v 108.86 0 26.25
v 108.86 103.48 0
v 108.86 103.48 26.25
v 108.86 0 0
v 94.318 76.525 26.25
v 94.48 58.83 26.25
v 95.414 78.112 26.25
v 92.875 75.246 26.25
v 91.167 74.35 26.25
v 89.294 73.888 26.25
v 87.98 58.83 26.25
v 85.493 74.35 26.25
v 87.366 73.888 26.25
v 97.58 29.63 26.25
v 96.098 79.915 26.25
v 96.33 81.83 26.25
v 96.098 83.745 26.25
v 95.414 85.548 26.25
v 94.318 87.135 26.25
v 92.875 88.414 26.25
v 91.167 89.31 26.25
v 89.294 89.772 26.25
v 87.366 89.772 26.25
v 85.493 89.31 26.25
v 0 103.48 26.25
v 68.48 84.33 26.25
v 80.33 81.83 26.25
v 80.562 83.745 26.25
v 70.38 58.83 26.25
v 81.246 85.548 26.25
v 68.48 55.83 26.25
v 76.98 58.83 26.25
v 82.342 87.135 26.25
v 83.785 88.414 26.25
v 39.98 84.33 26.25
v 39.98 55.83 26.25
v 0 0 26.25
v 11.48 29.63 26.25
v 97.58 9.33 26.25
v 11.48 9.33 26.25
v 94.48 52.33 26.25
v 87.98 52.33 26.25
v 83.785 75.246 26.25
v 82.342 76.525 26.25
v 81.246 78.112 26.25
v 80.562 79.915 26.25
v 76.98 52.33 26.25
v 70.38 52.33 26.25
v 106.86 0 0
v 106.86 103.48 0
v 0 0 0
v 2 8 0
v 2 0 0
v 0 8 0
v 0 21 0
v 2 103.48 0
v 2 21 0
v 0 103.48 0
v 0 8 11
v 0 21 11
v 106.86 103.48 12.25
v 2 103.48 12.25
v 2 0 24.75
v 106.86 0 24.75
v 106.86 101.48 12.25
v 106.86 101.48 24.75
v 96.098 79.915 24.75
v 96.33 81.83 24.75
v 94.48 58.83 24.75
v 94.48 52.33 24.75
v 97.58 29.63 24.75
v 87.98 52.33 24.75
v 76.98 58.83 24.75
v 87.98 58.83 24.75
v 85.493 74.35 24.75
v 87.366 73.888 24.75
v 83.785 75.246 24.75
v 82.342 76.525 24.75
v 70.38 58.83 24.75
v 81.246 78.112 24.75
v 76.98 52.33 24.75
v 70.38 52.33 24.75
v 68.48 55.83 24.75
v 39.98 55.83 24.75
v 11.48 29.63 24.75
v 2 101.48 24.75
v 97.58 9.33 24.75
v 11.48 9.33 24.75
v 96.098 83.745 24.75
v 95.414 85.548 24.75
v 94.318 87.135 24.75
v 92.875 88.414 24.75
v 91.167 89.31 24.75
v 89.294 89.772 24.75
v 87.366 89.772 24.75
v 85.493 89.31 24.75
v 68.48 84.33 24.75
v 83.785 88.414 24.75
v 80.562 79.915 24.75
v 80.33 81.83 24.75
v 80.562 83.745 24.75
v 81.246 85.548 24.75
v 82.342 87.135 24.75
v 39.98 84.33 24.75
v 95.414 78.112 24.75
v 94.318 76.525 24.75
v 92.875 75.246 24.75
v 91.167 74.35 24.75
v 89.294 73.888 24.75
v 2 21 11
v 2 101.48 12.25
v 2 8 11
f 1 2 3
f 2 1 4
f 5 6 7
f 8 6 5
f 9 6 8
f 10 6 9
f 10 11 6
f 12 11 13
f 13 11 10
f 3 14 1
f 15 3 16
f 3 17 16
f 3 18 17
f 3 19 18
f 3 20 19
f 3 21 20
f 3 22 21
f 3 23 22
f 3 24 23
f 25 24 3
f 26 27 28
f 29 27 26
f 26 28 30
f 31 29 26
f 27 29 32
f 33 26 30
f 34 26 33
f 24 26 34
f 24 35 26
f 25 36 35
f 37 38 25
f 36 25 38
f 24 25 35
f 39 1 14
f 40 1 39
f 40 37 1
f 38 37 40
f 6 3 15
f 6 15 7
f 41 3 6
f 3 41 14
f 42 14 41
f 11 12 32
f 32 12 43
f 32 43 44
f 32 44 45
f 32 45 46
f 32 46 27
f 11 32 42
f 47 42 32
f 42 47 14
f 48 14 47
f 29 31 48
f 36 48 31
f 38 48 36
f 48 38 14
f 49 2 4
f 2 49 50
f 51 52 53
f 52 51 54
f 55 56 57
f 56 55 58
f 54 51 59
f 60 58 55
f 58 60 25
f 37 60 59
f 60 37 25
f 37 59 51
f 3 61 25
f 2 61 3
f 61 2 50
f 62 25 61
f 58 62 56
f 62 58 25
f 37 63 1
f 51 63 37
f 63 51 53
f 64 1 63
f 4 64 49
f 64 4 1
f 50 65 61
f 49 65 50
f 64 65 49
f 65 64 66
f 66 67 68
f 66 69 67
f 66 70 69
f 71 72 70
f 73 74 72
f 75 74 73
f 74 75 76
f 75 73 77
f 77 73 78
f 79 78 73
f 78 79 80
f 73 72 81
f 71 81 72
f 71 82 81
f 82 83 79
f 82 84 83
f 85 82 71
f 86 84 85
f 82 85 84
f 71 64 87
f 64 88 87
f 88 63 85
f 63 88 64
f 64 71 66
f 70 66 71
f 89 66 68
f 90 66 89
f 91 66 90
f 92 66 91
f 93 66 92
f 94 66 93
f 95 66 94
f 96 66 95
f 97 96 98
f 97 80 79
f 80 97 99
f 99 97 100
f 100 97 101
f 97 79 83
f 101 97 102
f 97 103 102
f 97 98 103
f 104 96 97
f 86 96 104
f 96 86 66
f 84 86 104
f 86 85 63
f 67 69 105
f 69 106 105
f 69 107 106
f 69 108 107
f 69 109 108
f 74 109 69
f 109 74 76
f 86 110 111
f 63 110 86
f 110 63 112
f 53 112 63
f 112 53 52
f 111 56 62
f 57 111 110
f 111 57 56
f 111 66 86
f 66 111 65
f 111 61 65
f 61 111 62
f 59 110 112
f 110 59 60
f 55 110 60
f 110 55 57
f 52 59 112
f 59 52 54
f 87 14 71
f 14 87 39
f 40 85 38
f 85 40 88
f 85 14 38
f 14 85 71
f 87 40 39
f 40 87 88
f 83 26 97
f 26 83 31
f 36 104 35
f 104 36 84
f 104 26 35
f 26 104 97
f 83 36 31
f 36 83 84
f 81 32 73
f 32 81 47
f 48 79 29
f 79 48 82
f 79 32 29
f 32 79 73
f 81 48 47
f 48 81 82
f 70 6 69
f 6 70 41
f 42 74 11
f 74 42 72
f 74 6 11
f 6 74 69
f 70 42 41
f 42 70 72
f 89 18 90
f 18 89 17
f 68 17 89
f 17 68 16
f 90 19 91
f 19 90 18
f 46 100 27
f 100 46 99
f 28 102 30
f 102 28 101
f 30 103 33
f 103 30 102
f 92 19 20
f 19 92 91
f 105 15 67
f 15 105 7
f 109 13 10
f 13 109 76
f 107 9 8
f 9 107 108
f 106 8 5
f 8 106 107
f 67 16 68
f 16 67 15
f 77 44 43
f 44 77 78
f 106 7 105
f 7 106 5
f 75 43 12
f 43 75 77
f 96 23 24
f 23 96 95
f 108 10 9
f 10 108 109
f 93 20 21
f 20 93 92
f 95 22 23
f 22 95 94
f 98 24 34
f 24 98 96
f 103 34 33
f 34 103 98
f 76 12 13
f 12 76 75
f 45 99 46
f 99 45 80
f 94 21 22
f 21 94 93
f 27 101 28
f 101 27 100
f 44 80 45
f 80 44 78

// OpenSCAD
board_width=99.9;               // Width of board, from KiCAD
board_length=100.0;             // Length of board, from KiCAD
side_inner_spacing=0.15;        // This much either side, I want a friction fit
front_inner_spacing=0;
rear_inner_spacing=0.15;

// Copy these from the lower case SCAD, keep them in sync
//
lower_case_side_wall_thickness=2.0;
lower_case_closest_wall_thickness=0.0;
lower_case_spacing=0.33;
lower_case_far_wall_thickness=1.0;
lower_case_walls_height=25.5;  // temp, this is the height of the walls on the last one i printed
lower_case_sd_card_width=13.0;
lower_case_sd_card_offset=8.0;

// This is the width/length of the inside of the upper case
//
inner_width = side_inner_spacing +
              lower_case_side_wall_thickness + lower_case_spacing +
              board_width +
              lower_case_spacing + lower_case_side_wall_thickness + 
              side_inner_spacing;
inner_length= front_inner_spacing +
              lower_case_closest_wall_thickness + 0 +
              board_length +
              lower_case_spacing + lower_case_far_wall_thickness +
              rear_inner_spacing;

side_wall_thickness=2.0;        // Left and right side walls
far_wall_thickness=2.0;         // Wall at rear of device, might obstruct plugging in
closest_wall_thickness=0.0;     // Wall closest to ZX

lid_thickness=1.5;              // This needs to be strong

// This is the outermost dimension of the "lid". The case height here is 
// is the height of the walls which should match the entire height of the
// lower case. I subtract a small amount to ensure the top is slightly
// shorter than the base.
//
case_width =  side_wall_thickness + inner_width + side_wall_thickness;
case_length = closest_wall_thickness + inner_length + far_wall_thickness;
case_height = lower_case_walls_height + lid_thickness - 0.75;


difference()
{
  // Main box, wraps the whole device
  //
  cube([case_width, case_length, case_height]);
  
  // Knock out the inner area
  //
  translate([side_wall_thickness, closest_wall_thickness, 0])
  {
    cube([inner_width, inner_length, case_height-lid_thickness]);
  }
  
  // Knock out the lower far wall to allow access to the rear edge connector
  //
  translate([side_wall_thickness, case_length-far_wall_thickness, 0])
  {
    cube([inner_width, far_wall_thickness, case_height-14.0]);
  }

  // Knock out the lower side wall where the SD card pokes through
  //
  translate([0, lower_case_sd_card_offset, 0])
  {
    cube([side_wall_thickness, lower_case_sd_card_width, 11]);
  }
  
  
  // Big hole for the face plate
  //
// This version cuts a hole in the right place of the right size
//
//  plate_xpos=side_wall_thickness +
//             side_inner_spacing +
//             lower_case_side_wall_thickness +
//             lower_case_spacing +
//             5.0;                               // Calliper measurement
//  plate_ypos=closest_wall_thickness +
//             front_inner_spacing +
//             lower_case_closest_wall_thickness +
//             lower_case_spacing +
//             7.0;                               // Calliper measurement
//  translate([plate_xpos, plate_ypos, case_height-lid_thickness])
//  {
//    // Plate size is from KiCAD
//    //
//    cube([90.1, 24.3, lid_thickness]);
//  }

  // Underlap is the horizontal distance the lid fits under the face plate
  // all round. 
  //
  underlap=2.0;
  plate_xpos=side_wall_thickness +
             side_inner_spacing +
             lower_case_side_wall_thickness +
             lower_case_spacing +
             underlap + 
             5.0;                               // Calliper measurement
  plate_ypos=closest_wall_thickness +
             front_inner_spacing +
             lower_case_closest_wall_thickness +
             lower_case_spacing +
             underlap +
             7.0;                               // Calliper measurement
  translate([plate_xpos, plate_ypos, case_height-lid_thickness])
  {
    // Plate size is from KiCAD
    //
    cube([90.1-(underlap*2), 24.3-(underlap*2), lid_thickness]);
  }

  
  // Hole for the OLED
  //
  oled_xpos=side_wall_thickness +
            side_inner_spacing +
            lower_case_side_wall_thickness +
            lower_case_spacing +
            35.5;                               // Calliper measurement
  oled_ypos=closest_wall_thickness +
            front_inner_spacing +
            lower_case_closest_wall_thickness +
            lower_case_spacing +
            55.5;                               // Calliper measurement
  translate([oled_xpos, oled_ypos, case_height-lid_thickness])
  {
    // OLED size is from callipers
    //
    cube([28.5, 28.5, lid_thickness]);
  }
  
  // Hole for cancel button
  //
  cancel_xpos=side_wall_thickness +
              side_inner_spacing +
              lower_case_side_wall_thickness +
              lower_case_spacing +
              65.9;                               // Calliper measurement
  cancel_ypos=closest_wall_thickness +
              front_inner_spacing +
              lower_case_closest_wall_thickness +
              lower_case_spacing +
              52.0;                               // Calliper measurement
  translate([cancel_xpos, cancel_ypos, case_height-lid_thickness])
  {
    cube([6.6, 6.5, lid_thickness]);
  }
  
  // Hole for action button
  //
  action_xpos=side_wall_thickness +
              side_inner_spacing +
              lower_case_side_wall_thickness +
              lower_case_spacing +
              83.5;                               // Calliper measurement
  action_ypos=closest_wall_thickness +
              front_inner_spacing +
              lower_case_closest_wall_thickness +
              lower_case_spacing +
              52.0;                               // Calliper measurement
  translate([action_xpos, action_ypos, case_height-lid_thickness])
  {
    cube([6.5, 6.5, lid_thickness]);
  }

  // Rotary knob
  //
  knob_diameter=15.0;
  knob_spacing=1.0;      // All round
  knob_hole_diameter=knob_diameter + knob_spacing;
  knob_hole_radius=knob_hole_diameter/2;
  knob_xpos=side_wall_thickness +
             side_inner_spacing +
             lower_case_side_wall_thickness +
             lower_case_spacing +
             knob_spacing +
             knob_hole_radius +
             74.85;                               // Calliper measurement
  knob_ypos=closest_wall_thickness +
            front_inner_spacing +
            lower_case_closest_wall_thickness +
            lower_case_spacing +
            knob_spacing +
            knob_hole_radius +
            72.5;                               // Calliper measurement
  translate([knob_xpos, knob_ypos, case_height-lid_thickness])
  {
    cylinder(lid_thickness, knob_hole_radius, knob_hole_radius, false);
  }
  
}

// Add an inner track to help locate the top
//
// This needs the lower case size walls to extend up a couple of mm
// so the walls fit in the slots. Changed my mind, I want the lid to
// sit flush on the top of the walls.
//
//tracks_width     = 2;
//tracks_length    = board_length - rear_inner_spacing;
//left_track_xpos  = side_wall_thickness +
//                   side_inner_spacing +
//                   lower_case_side_wall_thickness;
//right_track_xpos = case_width -
//                   side_wall_thickness -
//                   lower_case_side_wall_thickness -
//                   side_inner_spacing - 
//                   tracks_width;
//tracks_ypos      = closest_wall_thickness +
//                   front_inner_spacing +
//                   lower_case_closest_wall_thickness + 0;
//
//translate([left_track_xpos, tracks_ypos, 0])
//{
//  cube([tracks_width, tracks_length, case_height]);
//}
//
//difference()
//{
//  translate([right_track_xpos, tracks_ypos, 0])
//  {
//    cube([tracks_width, tracks_length, case_height]);
//  }
//
//  // Solder point for the 3 pin header is in the way!
//  //
//  translate([right_track_xpos, 58, -lid_thickness])
//  {
//    cube([tracks_width, 11, case_height]);
//  }
//}
//
//translate([left_track_xpos, tracks_length-tracks_width, 0])
//{
//  cube([right_track_xpos-left_track_xpos+tracks_width, tracks_width, case_height]);
//}
